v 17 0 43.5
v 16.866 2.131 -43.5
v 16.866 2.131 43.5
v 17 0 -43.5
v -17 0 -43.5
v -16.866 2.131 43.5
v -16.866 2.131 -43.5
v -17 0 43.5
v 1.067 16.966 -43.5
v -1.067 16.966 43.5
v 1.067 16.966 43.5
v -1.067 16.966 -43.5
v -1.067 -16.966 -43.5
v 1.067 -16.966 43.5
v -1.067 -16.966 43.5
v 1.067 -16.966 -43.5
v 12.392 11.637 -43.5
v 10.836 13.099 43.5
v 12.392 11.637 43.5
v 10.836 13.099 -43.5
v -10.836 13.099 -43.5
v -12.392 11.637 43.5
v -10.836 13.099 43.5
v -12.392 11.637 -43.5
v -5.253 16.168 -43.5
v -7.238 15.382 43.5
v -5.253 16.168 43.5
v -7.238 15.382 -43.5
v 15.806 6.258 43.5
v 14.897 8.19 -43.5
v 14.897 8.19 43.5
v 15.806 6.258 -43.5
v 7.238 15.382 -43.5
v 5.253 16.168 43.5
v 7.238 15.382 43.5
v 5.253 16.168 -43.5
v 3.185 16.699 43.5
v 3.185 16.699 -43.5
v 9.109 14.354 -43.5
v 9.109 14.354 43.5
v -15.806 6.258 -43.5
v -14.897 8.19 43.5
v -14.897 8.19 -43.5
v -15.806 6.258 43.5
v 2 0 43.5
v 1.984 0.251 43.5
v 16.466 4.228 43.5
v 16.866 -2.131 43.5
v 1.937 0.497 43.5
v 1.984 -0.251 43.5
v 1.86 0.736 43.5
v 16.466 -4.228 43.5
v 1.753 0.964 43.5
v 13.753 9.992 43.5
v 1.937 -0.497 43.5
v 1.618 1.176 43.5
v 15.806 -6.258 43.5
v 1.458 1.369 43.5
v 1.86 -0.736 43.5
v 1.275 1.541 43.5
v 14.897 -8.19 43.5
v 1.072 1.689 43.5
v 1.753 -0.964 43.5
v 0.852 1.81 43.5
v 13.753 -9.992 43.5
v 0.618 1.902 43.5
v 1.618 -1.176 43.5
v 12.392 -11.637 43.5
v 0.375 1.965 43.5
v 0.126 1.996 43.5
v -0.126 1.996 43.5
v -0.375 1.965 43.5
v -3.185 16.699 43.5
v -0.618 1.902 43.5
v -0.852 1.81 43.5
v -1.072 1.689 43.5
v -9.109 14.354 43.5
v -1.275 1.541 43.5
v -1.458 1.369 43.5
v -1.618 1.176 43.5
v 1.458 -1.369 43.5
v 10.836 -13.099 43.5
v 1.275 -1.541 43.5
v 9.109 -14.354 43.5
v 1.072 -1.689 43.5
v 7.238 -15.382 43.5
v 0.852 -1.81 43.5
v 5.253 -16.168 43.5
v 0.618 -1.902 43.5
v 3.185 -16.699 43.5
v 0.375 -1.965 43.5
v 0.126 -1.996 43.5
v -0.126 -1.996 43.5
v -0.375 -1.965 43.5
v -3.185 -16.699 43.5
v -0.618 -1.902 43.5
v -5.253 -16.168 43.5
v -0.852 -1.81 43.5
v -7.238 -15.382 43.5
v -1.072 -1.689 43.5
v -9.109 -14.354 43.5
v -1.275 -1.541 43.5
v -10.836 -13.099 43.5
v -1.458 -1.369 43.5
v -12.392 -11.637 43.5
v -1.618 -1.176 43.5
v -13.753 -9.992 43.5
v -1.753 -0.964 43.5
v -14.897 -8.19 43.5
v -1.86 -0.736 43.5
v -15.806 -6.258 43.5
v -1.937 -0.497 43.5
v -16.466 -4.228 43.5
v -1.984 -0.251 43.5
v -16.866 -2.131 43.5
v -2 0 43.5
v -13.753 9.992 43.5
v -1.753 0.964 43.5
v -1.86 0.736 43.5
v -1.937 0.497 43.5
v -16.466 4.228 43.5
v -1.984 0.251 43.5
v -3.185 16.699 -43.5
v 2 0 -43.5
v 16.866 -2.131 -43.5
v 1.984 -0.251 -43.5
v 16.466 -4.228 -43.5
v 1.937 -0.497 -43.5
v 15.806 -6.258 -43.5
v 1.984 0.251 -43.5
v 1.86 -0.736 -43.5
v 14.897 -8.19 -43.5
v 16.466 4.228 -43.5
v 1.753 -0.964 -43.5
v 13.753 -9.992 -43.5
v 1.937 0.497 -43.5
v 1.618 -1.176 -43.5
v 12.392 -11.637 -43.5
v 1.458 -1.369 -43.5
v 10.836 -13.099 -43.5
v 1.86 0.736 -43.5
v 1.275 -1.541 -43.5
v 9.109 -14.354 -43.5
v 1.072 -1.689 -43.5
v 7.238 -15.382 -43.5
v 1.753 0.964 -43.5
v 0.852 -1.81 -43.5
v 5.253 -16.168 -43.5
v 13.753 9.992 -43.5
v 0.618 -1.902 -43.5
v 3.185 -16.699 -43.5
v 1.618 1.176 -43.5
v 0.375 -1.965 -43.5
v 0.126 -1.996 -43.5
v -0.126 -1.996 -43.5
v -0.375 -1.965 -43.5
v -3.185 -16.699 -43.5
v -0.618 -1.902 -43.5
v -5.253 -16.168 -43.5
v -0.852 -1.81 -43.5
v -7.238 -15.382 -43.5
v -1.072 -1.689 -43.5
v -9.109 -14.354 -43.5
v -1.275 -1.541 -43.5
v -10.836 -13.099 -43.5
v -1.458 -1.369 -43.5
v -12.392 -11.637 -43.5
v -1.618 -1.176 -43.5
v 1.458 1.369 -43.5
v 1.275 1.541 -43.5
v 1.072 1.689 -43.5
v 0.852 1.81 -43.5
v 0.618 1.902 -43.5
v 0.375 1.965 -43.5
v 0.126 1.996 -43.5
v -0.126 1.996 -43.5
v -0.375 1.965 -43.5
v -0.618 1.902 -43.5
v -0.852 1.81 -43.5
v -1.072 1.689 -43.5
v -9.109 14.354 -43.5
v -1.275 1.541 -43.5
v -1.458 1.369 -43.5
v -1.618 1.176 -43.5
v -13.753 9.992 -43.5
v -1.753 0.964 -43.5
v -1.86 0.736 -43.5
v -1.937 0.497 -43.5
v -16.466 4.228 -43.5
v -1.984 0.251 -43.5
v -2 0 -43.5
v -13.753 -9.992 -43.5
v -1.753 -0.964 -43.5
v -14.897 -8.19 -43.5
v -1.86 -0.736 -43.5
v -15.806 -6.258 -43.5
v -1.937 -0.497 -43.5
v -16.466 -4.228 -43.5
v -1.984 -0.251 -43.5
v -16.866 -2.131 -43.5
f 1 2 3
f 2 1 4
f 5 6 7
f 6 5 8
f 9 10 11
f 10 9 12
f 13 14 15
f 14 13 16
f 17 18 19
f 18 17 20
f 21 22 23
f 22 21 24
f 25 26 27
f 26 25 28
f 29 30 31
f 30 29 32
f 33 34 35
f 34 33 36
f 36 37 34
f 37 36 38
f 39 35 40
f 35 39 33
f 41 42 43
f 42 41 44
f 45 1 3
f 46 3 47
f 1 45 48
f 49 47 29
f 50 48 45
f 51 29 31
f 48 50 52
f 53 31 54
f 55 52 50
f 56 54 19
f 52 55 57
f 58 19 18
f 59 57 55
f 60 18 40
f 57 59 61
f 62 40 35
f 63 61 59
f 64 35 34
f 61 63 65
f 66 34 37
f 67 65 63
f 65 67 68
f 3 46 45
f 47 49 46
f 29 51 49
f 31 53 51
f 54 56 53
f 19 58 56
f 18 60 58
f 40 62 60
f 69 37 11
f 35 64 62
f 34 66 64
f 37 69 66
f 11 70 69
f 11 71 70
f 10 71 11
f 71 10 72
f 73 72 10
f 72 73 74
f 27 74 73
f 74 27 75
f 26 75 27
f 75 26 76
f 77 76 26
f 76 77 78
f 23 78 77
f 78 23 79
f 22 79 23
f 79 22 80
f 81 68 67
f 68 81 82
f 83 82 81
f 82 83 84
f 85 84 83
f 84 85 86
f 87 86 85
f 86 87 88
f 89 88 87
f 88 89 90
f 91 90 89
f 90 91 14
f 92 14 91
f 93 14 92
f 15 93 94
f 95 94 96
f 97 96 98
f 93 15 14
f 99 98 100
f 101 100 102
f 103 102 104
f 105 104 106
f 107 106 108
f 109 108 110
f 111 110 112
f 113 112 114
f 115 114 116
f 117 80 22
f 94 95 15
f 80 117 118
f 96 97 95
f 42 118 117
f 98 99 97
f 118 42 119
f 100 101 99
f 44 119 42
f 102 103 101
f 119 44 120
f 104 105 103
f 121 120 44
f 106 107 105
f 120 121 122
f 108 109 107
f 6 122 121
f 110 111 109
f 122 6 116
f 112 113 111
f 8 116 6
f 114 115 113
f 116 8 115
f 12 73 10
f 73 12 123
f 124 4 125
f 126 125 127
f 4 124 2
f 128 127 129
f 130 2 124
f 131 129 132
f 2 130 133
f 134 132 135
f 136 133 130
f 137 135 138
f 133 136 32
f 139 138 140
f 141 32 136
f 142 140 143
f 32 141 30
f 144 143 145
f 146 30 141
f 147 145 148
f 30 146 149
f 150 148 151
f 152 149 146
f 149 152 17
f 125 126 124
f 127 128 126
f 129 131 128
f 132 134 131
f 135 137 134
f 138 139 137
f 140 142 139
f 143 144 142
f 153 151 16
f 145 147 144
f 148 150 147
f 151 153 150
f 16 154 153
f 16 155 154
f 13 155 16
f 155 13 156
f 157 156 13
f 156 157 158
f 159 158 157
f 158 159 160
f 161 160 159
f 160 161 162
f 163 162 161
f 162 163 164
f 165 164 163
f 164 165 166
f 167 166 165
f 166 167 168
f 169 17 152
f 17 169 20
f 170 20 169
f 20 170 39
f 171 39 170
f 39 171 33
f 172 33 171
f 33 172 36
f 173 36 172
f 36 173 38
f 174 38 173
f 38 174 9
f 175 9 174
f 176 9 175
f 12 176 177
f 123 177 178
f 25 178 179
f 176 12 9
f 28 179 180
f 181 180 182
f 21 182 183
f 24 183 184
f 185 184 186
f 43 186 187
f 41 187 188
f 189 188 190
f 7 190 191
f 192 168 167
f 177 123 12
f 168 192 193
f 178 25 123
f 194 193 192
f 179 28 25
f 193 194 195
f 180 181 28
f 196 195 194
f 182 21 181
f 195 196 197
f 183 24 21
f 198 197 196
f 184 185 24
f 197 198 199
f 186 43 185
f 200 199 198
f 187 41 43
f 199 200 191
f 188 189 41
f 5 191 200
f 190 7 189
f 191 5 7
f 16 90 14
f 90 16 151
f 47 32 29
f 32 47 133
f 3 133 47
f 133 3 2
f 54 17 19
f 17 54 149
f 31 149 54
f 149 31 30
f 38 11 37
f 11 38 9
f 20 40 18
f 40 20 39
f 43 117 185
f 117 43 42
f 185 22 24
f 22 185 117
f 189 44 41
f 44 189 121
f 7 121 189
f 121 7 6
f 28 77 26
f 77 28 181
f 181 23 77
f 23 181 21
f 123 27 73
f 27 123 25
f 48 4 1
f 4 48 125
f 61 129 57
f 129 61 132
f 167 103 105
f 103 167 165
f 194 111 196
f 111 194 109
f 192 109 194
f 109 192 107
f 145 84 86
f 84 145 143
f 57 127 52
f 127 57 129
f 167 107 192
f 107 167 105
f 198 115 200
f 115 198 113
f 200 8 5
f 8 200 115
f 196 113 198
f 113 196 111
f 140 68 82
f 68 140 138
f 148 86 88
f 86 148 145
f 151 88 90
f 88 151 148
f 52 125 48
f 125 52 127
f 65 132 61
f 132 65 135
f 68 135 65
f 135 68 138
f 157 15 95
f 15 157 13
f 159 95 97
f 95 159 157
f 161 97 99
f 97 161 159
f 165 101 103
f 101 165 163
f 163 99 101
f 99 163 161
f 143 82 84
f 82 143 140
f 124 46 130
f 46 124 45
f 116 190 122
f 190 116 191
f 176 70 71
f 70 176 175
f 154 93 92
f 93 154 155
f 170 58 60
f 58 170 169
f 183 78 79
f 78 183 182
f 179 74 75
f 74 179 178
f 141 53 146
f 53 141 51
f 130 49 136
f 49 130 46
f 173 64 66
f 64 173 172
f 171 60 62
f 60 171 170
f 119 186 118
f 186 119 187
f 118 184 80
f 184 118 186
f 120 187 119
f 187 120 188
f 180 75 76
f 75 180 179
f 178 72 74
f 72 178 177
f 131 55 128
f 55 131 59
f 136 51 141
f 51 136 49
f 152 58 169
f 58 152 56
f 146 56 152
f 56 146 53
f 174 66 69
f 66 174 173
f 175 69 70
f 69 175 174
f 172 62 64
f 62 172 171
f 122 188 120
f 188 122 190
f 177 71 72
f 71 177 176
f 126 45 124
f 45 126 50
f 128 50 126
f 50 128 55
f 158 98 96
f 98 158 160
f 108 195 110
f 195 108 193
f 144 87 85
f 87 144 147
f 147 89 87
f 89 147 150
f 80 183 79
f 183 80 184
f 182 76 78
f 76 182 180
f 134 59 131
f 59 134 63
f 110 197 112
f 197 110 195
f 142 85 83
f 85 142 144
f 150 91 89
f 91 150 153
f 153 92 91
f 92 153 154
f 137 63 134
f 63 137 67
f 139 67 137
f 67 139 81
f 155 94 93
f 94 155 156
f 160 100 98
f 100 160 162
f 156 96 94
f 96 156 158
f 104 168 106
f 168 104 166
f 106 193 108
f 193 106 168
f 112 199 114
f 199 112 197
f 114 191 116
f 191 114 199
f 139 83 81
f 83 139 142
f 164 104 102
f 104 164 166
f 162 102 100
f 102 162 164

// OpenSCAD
$fn = 50;


difference() {
	union() {
		translate(v = [0, 0, -43.5000000000]) {
			cylinder(h = 87, r = 17.0000000000);
		}
	}
	union() {
		translate(v = [0, 0, -100.0000000000]) {
			cylinder(h = 200, r = 2.0000000000);
		}
	}
}
